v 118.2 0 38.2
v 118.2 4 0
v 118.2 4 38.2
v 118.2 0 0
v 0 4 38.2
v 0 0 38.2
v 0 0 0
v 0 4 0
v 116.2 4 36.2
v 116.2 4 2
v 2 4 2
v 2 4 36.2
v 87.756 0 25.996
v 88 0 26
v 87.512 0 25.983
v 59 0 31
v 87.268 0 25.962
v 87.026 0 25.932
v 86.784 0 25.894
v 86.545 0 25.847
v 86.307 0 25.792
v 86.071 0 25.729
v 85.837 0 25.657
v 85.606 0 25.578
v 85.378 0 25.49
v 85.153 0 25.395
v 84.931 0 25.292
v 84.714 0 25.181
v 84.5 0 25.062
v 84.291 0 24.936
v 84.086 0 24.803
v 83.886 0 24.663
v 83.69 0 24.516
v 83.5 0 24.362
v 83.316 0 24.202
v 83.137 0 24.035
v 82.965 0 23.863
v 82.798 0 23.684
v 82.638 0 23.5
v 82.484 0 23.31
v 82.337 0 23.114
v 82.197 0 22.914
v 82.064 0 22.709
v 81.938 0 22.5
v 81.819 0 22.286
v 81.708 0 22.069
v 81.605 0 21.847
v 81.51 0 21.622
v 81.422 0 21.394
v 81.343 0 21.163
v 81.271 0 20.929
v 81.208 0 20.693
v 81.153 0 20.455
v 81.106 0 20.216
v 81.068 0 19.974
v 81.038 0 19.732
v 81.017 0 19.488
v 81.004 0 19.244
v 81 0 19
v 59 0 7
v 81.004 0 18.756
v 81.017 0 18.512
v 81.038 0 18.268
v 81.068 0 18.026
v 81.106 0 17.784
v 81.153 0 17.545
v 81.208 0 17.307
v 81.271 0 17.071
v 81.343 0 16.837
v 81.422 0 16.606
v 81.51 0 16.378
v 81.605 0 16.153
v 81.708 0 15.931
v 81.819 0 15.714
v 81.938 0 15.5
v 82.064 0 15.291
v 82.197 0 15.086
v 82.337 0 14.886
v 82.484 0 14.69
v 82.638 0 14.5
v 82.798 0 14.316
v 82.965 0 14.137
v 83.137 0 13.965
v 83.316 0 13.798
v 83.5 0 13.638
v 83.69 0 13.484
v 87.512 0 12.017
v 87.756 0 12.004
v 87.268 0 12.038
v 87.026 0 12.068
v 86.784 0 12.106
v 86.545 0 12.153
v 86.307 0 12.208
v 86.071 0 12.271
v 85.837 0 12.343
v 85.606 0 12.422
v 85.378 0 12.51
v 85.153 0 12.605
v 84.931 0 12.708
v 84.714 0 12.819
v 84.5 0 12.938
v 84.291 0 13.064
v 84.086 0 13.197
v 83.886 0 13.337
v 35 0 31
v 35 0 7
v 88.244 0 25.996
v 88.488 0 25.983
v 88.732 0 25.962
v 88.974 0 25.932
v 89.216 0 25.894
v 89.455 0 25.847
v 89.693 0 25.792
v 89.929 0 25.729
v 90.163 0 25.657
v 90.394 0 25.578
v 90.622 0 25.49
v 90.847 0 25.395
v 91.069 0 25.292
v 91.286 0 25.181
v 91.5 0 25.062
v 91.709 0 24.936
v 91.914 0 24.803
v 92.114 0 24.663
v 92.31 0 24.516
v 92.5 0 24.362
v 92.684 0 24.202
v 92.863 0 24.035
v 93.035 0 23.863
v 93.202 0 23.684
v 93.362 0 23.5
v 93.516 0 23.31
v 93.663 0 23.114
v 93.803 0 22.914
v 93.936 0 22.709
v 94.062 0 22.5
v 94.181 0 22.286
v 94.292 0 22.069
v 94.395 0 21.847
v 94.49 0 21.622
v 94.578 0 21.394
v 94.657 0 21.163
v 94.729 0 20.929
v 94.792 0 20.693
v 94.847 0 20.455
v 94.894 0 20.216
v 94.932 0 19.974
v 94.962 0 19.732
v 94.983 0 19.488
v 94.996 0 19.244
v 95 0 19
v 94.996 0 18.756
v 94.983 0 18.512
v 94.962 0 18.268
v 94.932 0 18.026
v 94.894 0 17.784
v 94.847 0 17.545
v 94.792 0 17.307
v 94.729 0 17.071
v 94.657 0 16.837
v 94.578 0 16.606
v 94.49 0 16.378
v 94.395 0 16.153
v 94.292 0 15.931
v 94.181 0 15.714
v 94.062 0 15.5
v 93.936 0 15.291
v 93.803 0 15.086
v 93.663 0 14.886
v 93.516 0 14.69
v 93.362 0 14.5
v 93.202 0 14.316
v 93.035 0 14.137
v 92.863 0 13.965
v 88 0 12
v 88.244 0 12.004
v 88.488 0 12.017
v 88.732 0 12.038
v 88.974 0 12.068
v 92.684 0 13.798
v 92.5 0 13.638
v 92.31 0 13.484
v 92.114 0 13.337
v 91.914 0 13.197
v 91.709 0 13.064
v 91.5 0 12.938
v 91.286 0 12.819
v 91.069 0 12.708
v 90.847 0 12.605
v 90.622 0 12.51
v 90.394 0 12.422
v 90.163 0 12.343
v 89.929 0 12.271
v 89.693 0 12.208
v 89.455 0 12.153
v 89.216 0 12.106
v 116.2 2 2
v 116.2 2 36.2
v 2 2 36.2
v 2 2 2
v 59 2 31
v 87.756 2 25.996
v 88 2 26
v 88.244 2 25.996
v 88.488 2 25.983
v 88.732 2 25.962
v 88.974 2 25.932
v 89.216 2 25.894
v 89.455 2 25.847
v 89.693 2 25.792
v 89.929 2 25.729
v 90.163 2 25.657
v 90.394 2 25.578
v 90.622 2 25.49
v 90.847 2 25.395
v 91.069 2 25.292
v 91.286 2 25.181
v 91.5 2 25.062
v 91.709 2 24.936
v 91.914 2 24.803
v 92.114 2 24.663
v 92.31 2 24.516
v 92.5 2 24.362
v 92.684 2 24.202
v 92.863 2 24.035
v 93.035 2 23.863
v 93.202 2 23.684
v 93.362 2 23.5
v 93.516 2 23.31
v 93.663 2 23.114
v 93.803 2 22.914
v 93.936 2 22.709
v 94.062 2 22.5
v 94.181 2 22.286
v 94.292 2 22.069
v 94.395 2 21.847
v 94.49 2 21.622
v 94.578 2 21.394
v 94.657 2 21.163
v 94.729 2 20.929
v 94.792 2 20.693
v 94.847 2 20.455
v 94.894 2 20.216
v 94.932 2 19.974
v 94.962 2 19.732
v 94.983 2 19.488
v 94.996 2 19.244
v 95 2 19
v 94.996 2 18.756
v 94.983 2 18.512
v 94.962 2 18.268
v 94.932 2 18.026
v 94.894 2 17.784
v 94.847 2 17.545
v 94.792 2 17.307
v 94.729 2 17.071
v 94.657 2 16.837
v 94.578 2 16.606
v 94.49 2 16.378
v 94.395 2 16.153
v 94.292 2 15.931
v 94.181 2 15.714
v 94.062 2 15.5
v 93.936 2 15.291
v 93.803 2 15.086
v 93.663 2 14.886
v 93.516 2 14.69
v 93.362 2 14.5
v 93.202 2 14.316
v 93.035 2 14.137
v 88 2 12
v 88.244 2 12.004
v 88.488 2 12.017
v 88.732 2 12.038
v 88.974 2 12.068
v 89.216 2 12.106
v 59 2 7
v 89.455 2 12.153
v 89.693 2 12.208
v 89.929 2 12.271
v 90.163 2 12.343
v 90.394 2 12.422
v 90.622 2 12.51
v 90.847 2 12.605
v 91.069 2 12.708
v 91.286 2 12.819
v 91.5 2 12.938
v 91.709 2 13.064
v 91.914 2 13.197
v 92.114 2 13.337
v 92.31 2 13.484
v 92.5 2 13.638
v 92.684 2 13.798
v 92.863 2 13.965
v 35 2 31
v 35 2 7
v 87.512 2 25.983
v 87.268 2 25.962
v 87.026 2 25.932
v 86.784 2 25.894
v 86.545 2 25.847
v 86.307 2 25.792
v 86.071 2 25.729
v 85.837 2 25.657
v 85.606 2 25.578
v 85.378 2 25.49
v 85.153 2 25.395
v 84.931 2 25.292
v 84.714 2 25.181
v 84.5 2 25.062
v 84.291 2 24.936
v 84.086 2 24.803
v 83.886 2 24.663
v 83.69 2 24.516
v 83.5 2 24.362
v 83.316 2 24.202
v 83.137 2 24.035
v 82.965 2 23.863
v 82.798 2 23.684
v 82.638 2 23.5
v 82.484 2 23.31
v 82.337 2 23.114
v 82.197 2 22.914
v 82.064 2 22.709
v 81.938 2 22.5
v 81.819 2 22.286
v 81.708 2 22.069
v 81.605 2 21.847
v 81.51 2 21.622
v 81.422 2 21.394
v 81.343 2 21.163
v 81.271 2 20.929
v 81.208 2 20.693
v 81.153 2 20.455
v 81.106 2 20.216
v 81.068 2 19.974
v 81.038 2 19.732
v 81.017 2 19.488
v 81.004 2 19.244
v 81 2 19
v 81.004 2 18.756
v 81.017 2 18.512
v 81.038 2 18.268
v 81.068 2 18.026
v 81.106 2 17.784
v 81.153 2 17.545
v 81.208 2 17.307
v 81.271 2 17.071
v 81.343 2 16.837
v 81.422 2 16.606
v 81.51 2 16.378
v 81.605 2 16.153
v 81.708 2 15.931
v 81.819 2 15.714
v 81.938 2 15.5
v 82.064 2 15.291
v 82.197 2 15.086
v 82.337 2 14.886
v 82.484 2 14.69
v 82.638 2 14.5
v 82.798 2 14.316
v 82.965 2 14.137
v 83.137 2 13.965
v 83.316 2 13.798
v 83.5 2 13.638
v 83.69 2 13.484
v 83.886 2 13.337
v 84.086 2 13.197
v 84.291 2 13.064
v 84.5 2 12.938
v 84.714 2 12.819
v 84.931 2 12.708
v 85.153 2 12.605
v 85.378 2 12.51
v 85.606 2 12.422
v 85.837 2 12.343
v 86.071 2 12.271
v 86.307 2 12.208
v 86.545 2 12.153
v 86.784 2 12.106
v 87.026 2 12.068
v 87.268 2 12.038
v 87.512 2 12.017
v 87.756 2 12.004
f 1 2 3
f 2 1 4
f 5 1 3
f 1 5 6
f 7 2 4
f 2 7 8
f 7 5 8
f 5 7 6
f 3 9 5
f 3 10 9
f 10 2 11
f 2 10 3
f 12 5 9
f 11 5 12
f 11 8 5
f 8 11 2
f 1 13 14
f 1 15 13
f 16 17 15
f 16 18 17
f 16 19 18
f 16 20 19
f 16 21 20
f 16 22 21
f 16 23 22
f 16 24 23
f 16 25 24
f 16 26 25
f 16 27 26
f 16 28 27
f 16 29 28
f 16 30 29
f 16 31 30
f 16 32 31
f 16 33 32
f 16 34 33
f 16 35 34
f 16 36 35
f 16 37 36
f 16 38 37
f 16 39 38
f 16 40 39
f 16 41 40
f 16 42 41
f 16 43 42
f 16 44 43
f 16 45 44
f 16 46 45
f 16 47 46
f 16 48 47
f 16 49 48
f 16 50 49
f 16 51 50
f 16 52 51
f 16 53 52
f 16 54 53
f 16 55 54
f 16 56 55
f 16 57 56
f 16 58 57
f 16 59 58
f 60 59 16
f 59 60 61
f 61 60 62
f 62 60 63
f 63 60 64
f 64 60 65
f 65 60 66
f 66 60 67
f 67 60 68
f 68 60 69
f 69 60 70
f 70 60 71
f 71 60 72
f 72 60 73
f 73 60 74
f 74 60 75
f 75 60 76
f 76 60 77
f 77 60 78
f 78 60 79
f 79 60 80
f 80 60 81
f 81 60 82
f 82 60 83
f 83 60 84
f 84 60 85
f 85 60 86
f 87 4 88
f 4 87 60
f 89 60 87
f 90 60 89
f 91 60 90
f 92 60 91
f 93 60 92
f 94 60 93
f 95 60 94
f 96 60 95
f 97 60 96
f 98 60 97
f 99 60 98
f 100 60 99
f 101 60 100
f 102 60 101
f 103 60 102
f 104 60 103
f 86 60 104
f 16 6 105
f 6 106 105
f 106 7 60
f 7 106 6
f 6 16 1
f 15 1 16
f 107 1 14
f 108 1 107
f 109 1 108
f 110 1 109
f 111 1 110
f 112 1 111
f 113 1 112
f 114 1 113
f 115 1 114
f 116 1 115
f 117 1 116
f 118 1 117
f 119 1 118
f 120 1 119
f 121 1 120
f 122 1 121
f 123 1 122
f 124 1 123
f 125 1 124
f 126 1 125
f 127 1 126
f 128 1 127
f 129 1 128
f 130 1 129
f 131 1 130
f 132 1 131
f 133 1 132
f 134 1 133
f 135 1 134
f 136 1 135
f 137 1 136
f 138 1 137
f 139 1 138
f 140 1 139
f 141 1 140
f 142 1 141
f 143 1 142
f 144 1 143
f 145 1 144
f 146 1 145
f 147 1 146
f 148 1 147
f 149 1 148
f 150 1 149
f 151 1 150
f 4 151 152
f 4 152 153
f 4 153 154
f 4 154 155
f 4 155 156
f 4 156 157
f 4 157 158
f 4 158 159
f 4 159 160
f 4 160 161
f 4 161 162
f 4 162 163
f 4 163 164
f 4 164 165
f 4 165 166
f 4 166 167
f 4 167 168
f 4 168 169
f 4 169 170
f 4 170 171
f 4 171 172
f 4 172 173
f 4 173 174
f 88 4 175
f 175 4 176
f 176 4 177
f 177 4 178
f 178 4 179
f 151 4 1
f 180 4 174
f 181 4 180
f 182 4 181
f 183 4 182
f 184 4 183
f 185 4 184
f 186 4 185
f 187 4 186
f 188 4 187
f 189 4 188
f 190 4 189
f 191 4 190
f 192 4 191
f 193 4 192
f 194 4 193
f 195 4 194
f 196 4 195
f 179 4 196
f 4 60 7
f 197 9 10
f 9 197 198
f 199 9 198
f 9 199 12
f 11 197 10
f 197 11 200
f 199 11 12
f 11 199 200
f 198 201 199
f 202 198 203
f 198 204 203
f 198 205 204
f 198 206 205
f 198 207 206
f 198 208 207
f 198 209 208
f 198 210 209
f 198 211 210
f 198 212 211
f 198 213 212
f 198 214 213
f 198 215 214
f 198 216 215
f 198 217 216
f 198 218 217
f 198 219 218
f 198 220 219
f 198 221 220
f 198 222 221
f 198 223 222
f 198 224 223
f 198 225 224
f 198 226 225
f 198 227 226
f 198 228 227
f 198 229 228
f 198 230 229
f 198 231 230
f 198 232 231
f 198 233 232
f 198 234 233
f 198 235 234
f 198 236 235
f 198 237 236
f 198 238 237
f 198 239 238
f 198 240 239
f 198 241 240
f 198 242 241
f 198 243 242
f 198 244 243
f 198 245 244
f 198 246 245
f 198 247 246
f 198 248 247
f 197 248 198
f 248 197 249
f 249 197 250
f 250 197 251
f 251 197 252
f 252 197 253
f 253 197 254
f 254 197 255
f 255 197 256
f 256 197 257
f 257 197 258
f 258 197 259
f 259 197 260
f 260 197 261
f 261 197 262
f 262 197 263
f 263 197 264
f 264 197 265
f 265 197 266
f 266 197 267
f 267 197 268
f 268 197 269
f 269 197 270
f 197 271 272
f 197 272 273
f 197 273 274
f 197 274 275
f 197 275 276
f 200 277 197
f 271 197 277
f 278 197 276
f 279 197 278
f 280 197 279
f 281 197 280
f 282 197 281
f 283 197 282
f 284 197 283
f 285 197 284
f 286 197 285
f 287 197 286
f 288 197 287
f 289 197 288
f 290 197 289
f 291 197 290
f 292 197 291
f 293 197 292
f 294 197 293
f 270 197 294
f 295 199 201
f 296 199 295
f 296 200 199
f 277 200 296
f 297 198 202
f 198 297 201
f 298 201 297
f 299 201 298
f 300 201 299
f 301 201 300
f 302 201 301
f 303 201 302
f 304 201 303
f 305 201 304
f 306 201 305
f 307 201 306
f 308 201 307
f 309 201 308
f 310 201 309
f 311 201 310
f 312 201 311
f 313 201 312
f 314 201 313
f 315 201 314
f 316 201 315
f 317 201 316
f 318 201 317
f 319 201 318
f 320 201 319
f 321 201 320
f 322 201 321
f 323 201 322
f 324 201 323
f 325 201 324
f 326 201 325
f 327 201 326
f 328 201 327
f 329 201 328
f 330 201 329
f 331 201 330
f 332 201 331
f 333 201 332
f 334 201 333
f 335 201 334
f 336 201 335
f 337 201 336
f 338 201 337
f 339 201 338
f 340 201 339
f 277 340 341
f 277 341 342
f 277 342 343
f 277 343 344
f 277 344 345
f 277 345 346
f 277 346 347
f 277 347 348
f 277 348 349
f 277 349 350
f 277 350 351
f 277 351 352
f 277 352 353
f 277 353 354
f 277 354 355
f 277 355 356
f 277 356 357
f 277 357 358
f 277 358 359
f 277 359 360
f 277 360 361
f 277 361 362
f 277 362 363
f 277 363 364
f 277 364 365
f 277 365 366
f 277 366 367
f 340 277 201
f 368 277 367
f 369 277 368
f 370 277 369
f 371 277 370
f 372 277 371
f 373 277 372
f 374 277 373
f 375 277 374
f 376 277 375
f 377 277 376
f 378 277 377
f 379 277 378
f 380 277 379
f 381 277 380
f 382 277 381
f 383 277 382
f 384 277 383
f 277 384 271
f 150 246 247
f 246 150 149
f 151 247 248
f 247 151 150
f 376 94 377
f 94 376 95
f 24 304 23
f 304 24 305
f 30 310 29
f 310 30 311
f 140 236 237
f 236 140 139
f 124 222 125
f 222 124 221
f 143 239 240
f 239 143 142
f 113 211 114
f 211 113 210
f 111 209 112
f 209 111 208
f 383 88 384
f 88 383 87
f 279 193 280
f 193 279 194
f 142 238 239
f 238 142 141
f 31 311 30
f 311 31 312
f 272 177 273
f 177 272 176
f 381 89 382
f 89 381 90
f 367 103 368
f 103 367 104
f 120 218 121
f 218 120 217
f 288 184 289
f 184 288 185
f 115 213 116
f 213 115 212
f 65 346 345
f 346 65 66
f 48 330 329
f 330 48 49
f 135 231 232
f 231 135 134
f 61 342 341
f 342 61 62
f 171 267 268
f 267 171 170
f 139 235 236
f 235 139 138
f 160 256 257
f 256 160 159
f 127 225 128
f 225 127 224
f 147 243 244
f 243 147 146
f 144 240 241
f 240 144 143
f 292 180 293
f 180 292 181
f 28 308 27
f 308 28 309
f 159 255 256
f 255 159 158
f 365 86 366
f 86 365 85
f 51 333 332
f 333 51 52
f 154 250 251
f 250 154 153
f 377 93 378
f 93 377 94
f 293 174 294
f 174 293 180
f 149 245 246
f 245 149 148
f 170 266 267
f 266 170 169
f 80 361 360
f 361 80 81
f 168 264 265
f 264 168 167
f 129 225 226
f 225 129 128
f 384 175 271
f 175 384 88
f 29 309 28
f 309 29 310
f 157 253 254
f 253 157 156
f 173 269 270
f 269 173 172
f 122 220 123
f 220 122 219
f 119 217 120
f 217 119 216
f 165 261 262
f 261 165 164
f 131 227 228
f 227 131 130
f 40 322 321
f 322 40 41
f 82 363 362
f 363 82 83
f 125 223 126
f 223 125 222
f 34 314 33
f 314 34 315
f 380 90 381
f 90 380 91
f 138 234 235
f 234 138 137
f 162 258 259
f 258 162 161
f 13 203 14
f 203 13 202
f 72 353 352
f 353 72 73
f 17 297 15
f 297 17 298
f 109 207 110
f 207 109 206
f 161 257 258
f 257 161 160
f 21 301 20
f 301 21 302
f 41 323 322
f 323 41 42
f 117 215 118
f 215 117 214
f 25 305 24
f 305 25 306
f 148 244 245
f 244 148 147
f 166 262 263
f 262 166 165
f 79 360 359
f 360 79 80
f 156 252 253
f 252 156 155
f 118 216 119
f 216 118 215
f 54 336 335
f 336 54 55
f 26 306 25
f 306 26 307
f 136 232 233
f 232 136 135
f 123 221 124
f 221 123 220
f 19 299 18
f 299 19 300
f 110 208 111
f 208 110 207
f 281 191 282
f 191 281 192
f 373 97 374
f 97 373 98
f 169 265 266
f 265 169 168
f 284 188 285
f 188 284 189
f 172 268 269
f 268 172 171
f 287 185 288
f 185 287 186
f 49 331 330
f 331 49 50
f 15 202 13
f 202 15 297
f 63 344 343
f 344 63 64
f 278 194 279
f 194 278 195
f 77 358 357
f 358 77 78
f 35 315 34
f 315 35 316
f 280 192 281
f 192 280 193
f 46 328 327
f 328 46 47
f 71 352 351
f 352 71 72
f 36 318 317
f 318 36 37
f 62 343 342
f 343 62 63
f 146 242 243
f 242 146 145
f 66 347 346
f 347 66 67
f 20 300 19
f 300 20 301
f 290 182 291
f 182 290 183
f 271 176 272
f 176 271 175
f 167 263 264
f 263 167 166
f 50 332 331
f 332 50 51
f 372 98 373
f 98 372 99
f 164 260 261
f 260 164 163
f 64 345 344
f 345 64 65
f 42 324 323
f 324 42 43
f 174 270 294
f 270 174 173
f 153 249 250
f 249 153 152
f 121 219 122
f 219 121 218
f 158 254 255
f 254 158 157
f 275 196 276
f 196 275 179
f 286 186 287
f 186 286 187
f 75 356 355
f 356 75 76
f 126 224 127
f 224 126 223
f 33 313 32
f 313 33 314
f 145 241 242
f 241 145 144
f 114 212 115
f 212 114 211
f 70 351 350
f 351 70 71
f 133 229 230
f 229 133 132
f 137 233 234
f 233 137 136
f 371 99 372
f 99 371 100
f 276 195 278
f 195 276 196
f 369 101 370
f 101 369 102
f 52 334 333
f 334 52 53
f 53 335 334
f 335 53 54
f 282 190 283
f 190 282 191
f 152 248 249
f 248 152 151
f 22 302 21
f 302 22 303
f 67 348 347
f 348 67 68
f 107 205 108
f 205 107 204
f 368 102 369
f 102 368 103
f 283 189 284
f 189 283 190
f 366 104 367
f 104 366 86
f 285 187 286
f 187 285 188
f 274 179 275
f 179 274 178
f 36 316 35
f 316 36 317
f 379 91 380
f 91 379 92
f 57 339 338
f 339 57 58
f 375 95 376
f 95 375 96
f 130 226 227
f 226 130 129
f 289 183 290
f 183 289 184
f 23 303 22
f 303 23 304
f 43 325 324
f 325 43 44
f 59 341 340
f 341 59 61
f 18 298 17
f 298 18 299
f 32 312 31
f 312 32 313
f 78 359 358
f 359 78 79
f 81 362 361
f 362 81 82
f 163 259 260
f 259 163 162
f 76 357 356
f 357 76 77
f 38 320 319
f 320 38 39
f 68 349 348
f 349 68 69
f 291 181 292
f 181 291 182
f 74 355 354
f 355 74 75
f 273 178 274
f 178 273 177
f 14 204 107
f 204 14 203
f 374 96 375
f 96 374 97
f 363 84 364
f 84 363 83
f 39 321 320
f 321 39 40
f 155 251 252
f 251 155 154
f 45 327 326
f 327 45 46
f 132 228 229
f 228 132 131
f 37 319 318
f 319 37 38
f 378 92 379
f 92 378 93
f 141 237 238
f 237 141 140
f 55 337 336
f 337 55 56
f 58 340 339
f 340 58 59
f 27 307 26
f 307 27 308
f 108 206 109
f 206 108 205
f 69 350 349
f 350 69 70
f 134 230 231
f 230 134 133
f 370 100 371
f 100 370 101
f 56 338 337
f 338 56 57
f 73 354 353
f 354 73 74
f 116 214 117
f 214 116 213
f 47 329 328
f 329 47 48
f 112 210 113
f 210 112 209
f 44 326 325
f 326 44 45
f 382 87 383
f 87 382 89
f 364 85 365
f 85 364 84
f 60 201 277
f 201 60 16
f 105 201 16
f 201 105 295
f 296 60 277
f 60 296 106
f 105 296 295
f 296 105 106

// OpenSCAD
$fn=180;

difference() {
cube([118.2,4,38.2]);

translate([2,2,2])
    cube([114.2,4,34.2]);
    
    translate([88,7,19])
    rotate([90,0,0])
        cylinder(10,d=14);
    
     translate([35,-1,7])
      cube([24,24,24]);
}
